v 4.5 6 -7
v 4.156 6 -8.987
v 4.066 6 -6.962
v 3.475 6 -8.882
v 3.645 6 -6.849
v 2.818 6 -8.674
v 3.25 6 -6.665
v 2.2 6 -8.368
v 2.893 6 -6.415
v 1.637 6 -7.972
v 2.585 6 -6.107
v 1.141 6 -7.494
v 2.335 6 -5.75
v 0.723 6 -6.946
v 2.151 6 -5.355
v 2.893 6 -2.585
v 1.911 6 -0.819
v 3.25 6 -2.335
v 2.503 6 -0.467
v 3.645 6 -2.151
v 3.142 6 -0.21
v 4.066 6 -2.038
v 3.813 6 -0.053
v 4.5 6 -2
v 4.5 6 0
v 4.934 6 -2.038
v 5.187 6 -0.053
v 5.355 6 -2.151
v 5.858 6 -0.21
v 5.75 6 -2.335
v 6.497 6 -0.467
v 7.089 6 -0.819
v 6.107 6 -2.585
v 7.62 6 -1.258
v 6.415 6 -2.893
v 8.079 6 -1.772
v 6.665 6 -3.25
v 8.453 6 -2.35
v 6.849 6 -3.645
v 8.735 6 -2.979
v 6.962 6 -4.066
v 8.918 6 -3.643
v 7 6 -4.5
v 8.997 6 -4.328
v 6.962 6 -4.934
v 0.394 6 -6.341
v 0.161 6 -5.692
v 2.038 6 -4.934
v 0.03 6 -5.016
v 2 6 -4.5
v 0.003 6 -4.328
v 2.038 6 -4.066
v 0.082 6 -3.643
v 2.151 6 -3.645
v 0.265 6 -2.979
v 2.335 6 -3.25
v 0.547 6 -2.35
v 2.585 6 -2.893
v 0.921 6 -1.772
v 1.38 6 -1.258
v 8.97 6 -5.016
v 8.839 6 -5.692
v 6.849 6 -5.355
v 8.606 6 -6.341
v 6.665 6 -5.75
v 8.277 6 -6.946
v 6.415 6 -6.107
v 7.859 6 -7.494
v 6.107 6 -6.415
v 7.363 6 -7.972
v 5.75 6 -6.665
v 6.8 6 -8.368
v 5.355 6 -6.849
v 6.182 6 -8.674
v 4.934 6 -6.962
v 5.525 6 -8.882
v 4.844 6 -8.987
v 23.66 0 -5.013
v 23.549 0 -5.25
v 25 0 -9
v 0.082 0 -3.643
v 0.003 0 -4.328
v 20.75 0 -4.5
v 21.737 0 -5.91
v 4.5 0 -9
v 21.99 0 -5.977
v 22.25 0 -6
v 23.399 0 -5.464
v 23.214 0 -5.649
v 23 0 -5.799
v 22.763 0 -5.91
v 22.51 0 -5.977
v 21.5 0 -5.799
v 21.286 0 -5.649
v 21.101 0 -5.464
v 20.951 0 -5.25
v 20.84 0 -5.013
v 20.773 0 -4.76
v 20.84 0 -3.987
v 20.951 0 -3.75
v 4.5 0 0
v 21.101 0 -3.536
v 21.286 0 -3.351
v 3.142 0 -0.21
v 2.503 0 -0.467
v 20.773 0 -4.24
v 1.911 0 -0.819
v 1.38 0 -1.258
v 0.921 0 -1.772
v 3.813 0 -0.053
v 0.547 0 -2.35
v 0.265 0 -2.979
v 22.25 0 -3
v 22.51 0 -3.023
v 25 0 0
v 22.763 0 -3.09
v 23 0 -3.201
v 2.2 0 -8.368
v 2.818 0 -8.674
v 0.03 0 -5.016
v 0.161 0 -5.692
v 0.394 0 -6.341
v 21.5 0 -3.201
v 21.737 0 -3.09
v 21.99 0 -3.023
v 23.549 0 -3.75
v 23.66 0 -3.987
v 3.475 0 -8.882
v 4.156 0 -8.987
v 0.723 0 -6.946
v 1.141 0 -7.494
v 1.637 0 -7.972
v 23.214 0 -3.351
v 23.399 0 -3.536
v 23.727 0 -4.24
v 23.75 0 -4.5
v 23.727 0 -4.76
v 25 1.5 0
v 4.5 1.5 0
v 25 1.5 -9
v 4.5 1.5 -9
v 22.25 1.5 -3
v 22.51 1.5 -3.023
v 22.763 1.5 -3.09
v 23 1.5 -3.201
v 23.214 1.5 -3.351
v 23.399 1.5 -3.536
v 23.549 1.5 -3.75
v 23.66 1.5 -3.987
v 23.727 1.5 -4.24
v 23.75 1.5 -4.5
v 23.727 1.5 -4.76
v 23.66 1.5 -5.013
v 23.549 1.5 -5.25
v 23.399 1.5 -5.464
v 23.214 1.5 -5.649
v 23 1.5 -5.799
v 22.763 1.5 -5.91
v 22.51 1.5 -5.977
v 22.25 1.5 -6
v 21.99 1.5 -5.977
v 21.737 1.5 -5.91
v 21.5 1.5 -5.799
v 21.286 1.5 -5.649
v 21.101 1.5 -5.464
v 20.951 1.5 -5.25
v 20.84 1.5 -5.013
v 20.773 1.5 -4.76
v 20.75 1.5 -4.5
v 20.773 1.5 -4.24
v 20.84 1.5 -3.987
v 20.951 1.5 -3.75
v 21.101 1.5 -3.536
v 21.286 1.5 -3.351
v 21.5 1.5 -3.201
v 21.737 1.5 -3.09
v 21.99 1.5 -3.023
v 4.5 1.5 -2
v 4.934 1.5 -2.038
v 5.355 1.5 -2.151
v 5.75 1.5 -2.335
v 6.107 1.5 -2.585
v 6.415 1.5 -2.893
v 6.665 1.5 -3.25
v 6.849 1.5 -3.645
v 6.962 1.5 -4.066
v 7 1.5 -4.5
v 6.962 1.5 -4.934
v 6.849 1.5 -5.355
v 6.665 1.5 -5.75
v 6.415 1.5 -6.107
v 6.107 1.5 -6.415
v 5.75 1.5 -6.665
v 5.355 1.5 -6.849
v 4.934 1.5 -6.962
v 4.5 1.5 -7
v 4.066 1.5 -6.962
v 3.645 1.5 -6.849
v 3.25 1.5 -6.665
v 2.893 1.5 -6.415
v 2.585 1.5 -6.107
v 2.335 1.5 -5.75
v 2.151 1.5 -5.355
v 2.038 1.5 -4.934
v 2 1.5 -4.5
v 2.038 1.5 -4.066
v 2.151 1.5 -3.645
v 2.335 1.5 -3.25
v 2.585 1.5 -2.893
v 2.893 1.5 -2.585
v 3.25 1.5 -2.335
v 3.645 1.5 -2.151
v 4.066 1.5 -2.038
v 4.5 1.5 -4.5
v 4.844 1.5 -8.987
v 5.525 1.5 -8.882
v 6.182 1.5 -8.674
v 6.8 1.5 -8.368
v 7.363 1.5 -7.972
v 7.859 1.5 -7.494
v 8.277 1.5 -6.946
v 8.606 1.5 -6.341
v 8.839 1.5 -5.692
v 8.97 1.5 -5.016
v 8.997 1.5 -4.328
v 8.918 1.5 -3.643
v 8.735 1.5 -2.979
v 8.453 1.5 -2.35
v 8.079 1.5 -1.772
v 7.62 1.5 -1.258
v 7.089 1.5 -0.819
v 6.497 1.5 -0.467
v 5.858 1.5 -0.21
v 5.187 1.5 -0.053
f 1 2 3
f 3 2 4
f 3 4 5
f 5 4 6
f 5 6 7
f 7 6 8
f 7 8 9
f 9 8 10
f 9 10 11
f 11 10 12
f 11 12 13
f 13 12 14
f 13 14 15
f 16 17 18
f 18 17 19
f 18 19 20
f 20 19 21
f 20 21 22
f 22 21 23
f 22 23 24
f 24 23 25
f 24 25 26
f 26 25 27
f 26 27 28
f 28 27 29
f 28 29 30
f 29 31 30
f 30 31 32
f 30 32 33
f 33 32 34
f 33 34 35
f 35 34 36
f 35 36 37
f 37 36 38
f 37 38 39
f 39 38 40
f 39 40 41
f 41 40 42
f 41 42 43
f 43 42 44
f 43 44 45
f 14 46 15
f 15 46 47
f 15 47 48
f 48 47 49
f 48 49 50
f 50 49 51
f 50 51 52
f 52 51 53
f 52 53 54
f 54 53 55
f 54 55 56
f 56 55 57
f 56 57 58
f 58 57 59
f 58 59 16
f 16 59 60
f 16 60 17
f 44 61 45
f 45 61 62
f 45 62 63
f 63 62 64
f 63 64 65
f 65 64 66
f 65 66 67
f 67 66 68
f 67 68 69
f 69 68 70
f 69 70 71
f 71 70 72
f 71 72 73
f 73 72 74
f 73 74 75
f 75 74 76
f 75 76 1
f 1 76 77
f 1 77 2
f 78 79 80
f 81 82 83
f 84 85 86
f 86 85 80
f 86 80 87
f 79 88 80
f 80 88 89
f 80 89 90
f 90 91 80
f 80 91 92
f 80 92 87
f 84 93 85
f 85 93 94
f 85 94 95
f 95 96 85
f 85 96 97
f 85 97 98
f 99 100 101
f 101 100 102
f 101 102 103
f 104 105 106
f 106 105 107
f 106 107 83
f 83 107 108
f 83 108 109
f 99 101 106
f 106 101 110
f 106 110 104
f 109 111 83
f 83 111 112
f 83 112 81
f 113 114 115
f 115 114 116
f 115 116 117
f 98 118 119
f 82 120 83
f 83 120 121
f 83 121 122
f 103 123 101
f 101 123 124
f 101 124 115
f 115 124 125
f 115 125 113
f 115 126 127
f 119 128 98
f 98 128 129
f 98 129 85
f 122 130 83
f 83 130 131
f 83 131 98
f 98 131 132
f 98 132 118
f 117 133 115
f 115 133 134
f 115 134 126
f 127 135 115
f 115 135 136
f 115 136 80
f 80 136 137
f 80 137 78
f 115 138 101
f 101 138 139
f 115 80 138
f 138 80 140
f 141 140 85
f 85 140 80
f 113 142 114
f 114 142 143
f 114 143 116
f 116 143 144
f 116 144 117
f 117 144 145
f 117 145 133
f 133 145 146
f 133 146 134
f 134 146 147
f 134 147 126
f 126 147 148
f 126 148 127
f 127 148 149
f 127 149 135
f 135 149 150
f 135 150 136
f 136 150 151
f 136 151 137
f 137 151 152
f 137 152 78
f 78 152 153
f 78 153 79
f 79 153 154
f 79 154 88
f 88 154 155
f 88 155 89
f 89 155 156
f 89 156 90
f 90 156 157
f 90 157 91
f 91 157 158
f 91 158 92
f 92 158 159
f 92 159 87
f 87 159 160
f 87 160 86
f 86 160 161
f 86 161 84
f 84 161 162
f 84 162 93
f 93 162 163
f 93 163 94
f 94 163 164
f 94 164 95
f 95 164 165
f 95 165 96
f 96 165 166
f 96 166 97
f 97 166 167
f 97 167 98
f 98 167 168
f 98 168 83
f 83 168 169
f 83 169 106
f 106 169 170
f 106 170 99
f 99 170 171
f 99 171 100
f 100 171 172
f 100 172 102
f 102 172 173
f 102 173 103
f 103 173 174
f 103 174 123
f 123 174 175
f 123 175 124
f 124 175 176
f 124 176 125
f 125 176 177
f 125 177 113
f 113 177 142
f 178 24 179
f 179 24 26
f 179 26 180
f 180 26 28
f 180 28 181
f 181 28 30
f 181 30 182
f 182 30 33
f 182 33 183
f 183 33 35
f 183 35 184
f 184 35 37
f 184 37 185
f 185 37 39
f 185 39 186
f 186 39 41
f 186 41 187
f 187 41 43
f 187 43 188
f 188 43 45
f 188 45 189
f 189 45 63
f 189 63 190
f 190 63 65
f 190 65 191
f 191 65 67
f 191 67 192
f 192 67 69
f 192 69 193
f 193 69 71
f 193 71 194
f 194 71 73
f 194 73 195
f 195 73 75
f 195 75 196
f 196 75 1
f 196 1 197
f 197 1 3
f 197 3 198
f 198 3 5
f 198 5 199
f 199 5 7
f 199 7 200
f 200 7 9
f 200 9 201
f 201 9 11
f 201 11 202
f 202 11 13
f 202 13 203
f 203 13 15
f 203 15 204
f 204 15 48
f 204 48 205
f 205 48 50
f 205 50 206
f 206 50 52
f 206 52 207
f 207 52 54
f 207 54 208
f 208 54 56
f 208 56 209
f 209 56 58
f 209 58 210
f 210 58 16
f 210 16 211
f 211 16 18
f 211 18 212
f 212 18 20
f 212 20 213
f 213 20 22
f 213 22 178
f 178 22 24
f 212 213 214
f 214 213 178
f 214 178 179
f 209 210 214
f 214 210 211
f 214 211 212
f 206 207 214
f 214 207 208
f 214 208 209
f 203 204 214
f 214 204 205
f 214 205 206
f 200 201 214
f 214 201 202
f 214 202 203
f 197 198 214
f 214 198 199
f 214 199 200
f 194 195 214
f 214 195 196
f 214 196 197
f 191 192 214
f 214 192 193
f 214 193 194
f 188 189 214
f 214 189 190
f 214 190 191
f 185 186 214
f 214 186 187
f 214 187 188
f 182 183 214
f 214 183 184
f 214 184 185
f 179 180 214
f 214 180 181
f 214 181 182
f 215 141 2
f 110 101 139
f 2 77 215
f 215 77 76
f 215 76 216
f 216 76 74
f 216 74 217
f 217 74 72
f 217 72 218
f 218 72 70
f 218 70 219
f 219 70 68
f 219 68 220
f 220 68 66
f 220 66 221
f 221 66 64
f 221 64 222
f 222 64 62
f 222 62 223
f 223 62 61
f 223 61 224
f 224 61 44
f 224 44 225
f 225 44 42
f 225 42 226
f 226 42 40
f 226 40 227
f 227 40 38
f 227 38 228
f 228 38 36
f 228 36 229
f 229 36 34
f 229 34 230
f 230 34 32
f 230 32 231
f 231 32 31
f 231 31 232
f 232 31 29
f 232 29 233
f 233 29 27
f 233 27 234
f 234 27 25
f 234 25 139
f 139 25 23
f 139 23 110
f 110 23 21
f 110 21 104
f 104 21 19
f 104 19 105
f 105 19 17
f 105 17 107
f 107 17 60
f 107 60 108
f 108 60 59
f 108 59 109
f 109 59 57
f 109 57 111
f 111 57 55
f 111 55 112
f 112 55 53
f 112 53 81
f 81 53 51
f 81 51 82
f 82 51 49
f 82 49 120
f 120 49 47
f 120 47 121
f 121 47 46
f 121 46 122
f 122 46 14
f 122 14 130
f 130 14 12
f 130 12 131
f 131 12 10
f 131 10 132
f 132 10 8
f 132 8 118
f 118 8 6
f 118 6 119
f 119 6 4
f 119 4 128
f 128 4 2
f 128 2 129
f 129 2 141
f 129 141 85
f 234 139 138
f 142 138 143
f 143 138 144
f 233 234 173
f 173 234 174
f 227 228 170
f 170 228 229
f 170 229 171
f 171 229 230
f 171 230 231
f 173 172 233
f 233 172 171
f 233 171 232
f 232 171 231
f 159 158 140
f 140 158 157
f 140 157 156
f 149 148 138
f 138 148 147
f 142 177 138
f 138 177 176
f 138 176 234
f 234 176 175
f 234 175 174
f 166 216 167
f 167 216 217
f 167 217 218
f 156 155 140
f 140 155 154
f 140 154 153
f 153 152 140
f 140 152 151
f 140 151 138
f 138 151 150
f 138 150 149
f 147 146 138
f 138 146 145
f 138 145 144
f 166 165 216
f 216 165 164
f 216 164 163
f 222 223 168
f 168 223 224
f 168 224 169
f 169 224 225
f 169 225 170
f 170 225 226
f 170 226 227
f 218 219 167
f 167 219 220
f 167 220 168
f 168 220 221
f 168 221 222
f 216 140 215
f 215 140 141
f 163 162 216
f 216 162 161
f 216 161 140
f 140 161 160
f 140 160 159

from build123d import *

# Parameters (mm, degrees)
SKETCH2_W               = 25
SKETCH2_H               = 9
BOSS_EXTRUDE3_DEPTH     = 6
SKETCH3_R               = 2.5
CUT_EXTRUDE1_DEPTH      = 4.5
CUT_EXTRUDE2_DEPTH      = 28.239676944
CUT_EXTRUDE2_DEPTH_BACK = 28.239676944
SKETCH4_R               = 1.5
SKETCH5_R               = 1.5
CUT_EXTRUDE3_DEPTH      = 4.5
CUT_EXTRUDE4_DEPTH      = 28.239676944


with BuildPart() as part:
    # Sketch2 → Boss-Extrude3 (new body)
    with BuildSketch(Plane(origin=(0, 0, 0), x_dir=(1, 0, 0), z_dir=(0, 1, 0))):
        with Locations((12.5, 4.5)):
            Rectangle(SKETCH2_W, SKETCH2_H)
    extrude(amount=BOSS_EXTRUDE3_DEPTH)

    # Sketch3 → Cut-Extrude1 (cut)
    with BuildSketch(Plane(origin=(0, 6, 0), x_dir=(1, 0, 0), z_dir=(0, 1, 0))):
        with Locations(Location((4.5, 4.5, 0), (0, 0, 270))):
            Circle(SKETCH3_R)
    extrude(amount=-CUT_EXTRUDE1_DEPTH, mode=Mode.SUBTRACT)

    # Sketch4 → Cut-Extrude2 (cut, two sides: drawn at the far end of the back side and taken through both)
    with BuildSketch(Plane(origin=(0, 6, 0), x_dir=(1, 0, 0), z_dir=(0, 1, 0)).offset(-CUT_EXTRUDE2_DEPTH_BACK)):
        with Locations(Location((22.25, 4.5, 0), (0, 0, 270))):
            Circle(SKETCH4_R)
    extrude(amount=CUT_EXTRUDE2_DEPTH + CUT_EXTRUDE2_DEPTH_BACK, mode=Mode.SUBTRACT)

    # Sketch5 → Cut-Extrude3 (cut)
    with BuildSketch(Plane(origin=(0, 6, 0), x_dir=(1, 0, 0), z_dir=(0, 1, 0))):
        with BuildLine():
            Line((25, 9), (4.5, 9))
            ThreePointArc((4.5, 9), (7.681980515, 7.681980515), (9, 4.5))
            ThreePointArc((9, 4.5), (7.681980515, 1.318019485), (4.5, 0))
            Line((4.5, 0), (25, 0))
            Line((25, 0), (25, 9))
        make_face()
        with Locations(Location((22.25, 4.5, 0), (0, 0, 270))):
            Circle(SKETCH5_R, mode=Mode.SUBTRACT)
    extrude(amount=-CUT_EXTRUDE3_DEPTH, mode=Mode.SUBTRACT)

    # Sketch6 → Cut-Extrude4 (cut, through all)
    with BuildSketch(Plane(origin=(0, 6, 0), x_dir=(1, 0, 0), z_dir=(0, 1, 0))):
        with BuildLine():
            ThreePointArc((0, 4.5), (1.318019485, 7.681980515), (4.5, 9))
            Line((4.5, 9), (0, 9))
            Line((0, 9), (0, 4.5))
        make_face()
        with BuildLine():
            ThreePointArc((4.5, 0), (1.318019485, 1.318019485), (0, 4.5))
            Line((0, 4.5), (0, 0))
            Line((0, 0), (4.5, 0))
        make_face()
    extrude(amount=-CUT_EXTRUDE4_DEPTH, mode=Mode.SUBTRACT)


solid = part.part
